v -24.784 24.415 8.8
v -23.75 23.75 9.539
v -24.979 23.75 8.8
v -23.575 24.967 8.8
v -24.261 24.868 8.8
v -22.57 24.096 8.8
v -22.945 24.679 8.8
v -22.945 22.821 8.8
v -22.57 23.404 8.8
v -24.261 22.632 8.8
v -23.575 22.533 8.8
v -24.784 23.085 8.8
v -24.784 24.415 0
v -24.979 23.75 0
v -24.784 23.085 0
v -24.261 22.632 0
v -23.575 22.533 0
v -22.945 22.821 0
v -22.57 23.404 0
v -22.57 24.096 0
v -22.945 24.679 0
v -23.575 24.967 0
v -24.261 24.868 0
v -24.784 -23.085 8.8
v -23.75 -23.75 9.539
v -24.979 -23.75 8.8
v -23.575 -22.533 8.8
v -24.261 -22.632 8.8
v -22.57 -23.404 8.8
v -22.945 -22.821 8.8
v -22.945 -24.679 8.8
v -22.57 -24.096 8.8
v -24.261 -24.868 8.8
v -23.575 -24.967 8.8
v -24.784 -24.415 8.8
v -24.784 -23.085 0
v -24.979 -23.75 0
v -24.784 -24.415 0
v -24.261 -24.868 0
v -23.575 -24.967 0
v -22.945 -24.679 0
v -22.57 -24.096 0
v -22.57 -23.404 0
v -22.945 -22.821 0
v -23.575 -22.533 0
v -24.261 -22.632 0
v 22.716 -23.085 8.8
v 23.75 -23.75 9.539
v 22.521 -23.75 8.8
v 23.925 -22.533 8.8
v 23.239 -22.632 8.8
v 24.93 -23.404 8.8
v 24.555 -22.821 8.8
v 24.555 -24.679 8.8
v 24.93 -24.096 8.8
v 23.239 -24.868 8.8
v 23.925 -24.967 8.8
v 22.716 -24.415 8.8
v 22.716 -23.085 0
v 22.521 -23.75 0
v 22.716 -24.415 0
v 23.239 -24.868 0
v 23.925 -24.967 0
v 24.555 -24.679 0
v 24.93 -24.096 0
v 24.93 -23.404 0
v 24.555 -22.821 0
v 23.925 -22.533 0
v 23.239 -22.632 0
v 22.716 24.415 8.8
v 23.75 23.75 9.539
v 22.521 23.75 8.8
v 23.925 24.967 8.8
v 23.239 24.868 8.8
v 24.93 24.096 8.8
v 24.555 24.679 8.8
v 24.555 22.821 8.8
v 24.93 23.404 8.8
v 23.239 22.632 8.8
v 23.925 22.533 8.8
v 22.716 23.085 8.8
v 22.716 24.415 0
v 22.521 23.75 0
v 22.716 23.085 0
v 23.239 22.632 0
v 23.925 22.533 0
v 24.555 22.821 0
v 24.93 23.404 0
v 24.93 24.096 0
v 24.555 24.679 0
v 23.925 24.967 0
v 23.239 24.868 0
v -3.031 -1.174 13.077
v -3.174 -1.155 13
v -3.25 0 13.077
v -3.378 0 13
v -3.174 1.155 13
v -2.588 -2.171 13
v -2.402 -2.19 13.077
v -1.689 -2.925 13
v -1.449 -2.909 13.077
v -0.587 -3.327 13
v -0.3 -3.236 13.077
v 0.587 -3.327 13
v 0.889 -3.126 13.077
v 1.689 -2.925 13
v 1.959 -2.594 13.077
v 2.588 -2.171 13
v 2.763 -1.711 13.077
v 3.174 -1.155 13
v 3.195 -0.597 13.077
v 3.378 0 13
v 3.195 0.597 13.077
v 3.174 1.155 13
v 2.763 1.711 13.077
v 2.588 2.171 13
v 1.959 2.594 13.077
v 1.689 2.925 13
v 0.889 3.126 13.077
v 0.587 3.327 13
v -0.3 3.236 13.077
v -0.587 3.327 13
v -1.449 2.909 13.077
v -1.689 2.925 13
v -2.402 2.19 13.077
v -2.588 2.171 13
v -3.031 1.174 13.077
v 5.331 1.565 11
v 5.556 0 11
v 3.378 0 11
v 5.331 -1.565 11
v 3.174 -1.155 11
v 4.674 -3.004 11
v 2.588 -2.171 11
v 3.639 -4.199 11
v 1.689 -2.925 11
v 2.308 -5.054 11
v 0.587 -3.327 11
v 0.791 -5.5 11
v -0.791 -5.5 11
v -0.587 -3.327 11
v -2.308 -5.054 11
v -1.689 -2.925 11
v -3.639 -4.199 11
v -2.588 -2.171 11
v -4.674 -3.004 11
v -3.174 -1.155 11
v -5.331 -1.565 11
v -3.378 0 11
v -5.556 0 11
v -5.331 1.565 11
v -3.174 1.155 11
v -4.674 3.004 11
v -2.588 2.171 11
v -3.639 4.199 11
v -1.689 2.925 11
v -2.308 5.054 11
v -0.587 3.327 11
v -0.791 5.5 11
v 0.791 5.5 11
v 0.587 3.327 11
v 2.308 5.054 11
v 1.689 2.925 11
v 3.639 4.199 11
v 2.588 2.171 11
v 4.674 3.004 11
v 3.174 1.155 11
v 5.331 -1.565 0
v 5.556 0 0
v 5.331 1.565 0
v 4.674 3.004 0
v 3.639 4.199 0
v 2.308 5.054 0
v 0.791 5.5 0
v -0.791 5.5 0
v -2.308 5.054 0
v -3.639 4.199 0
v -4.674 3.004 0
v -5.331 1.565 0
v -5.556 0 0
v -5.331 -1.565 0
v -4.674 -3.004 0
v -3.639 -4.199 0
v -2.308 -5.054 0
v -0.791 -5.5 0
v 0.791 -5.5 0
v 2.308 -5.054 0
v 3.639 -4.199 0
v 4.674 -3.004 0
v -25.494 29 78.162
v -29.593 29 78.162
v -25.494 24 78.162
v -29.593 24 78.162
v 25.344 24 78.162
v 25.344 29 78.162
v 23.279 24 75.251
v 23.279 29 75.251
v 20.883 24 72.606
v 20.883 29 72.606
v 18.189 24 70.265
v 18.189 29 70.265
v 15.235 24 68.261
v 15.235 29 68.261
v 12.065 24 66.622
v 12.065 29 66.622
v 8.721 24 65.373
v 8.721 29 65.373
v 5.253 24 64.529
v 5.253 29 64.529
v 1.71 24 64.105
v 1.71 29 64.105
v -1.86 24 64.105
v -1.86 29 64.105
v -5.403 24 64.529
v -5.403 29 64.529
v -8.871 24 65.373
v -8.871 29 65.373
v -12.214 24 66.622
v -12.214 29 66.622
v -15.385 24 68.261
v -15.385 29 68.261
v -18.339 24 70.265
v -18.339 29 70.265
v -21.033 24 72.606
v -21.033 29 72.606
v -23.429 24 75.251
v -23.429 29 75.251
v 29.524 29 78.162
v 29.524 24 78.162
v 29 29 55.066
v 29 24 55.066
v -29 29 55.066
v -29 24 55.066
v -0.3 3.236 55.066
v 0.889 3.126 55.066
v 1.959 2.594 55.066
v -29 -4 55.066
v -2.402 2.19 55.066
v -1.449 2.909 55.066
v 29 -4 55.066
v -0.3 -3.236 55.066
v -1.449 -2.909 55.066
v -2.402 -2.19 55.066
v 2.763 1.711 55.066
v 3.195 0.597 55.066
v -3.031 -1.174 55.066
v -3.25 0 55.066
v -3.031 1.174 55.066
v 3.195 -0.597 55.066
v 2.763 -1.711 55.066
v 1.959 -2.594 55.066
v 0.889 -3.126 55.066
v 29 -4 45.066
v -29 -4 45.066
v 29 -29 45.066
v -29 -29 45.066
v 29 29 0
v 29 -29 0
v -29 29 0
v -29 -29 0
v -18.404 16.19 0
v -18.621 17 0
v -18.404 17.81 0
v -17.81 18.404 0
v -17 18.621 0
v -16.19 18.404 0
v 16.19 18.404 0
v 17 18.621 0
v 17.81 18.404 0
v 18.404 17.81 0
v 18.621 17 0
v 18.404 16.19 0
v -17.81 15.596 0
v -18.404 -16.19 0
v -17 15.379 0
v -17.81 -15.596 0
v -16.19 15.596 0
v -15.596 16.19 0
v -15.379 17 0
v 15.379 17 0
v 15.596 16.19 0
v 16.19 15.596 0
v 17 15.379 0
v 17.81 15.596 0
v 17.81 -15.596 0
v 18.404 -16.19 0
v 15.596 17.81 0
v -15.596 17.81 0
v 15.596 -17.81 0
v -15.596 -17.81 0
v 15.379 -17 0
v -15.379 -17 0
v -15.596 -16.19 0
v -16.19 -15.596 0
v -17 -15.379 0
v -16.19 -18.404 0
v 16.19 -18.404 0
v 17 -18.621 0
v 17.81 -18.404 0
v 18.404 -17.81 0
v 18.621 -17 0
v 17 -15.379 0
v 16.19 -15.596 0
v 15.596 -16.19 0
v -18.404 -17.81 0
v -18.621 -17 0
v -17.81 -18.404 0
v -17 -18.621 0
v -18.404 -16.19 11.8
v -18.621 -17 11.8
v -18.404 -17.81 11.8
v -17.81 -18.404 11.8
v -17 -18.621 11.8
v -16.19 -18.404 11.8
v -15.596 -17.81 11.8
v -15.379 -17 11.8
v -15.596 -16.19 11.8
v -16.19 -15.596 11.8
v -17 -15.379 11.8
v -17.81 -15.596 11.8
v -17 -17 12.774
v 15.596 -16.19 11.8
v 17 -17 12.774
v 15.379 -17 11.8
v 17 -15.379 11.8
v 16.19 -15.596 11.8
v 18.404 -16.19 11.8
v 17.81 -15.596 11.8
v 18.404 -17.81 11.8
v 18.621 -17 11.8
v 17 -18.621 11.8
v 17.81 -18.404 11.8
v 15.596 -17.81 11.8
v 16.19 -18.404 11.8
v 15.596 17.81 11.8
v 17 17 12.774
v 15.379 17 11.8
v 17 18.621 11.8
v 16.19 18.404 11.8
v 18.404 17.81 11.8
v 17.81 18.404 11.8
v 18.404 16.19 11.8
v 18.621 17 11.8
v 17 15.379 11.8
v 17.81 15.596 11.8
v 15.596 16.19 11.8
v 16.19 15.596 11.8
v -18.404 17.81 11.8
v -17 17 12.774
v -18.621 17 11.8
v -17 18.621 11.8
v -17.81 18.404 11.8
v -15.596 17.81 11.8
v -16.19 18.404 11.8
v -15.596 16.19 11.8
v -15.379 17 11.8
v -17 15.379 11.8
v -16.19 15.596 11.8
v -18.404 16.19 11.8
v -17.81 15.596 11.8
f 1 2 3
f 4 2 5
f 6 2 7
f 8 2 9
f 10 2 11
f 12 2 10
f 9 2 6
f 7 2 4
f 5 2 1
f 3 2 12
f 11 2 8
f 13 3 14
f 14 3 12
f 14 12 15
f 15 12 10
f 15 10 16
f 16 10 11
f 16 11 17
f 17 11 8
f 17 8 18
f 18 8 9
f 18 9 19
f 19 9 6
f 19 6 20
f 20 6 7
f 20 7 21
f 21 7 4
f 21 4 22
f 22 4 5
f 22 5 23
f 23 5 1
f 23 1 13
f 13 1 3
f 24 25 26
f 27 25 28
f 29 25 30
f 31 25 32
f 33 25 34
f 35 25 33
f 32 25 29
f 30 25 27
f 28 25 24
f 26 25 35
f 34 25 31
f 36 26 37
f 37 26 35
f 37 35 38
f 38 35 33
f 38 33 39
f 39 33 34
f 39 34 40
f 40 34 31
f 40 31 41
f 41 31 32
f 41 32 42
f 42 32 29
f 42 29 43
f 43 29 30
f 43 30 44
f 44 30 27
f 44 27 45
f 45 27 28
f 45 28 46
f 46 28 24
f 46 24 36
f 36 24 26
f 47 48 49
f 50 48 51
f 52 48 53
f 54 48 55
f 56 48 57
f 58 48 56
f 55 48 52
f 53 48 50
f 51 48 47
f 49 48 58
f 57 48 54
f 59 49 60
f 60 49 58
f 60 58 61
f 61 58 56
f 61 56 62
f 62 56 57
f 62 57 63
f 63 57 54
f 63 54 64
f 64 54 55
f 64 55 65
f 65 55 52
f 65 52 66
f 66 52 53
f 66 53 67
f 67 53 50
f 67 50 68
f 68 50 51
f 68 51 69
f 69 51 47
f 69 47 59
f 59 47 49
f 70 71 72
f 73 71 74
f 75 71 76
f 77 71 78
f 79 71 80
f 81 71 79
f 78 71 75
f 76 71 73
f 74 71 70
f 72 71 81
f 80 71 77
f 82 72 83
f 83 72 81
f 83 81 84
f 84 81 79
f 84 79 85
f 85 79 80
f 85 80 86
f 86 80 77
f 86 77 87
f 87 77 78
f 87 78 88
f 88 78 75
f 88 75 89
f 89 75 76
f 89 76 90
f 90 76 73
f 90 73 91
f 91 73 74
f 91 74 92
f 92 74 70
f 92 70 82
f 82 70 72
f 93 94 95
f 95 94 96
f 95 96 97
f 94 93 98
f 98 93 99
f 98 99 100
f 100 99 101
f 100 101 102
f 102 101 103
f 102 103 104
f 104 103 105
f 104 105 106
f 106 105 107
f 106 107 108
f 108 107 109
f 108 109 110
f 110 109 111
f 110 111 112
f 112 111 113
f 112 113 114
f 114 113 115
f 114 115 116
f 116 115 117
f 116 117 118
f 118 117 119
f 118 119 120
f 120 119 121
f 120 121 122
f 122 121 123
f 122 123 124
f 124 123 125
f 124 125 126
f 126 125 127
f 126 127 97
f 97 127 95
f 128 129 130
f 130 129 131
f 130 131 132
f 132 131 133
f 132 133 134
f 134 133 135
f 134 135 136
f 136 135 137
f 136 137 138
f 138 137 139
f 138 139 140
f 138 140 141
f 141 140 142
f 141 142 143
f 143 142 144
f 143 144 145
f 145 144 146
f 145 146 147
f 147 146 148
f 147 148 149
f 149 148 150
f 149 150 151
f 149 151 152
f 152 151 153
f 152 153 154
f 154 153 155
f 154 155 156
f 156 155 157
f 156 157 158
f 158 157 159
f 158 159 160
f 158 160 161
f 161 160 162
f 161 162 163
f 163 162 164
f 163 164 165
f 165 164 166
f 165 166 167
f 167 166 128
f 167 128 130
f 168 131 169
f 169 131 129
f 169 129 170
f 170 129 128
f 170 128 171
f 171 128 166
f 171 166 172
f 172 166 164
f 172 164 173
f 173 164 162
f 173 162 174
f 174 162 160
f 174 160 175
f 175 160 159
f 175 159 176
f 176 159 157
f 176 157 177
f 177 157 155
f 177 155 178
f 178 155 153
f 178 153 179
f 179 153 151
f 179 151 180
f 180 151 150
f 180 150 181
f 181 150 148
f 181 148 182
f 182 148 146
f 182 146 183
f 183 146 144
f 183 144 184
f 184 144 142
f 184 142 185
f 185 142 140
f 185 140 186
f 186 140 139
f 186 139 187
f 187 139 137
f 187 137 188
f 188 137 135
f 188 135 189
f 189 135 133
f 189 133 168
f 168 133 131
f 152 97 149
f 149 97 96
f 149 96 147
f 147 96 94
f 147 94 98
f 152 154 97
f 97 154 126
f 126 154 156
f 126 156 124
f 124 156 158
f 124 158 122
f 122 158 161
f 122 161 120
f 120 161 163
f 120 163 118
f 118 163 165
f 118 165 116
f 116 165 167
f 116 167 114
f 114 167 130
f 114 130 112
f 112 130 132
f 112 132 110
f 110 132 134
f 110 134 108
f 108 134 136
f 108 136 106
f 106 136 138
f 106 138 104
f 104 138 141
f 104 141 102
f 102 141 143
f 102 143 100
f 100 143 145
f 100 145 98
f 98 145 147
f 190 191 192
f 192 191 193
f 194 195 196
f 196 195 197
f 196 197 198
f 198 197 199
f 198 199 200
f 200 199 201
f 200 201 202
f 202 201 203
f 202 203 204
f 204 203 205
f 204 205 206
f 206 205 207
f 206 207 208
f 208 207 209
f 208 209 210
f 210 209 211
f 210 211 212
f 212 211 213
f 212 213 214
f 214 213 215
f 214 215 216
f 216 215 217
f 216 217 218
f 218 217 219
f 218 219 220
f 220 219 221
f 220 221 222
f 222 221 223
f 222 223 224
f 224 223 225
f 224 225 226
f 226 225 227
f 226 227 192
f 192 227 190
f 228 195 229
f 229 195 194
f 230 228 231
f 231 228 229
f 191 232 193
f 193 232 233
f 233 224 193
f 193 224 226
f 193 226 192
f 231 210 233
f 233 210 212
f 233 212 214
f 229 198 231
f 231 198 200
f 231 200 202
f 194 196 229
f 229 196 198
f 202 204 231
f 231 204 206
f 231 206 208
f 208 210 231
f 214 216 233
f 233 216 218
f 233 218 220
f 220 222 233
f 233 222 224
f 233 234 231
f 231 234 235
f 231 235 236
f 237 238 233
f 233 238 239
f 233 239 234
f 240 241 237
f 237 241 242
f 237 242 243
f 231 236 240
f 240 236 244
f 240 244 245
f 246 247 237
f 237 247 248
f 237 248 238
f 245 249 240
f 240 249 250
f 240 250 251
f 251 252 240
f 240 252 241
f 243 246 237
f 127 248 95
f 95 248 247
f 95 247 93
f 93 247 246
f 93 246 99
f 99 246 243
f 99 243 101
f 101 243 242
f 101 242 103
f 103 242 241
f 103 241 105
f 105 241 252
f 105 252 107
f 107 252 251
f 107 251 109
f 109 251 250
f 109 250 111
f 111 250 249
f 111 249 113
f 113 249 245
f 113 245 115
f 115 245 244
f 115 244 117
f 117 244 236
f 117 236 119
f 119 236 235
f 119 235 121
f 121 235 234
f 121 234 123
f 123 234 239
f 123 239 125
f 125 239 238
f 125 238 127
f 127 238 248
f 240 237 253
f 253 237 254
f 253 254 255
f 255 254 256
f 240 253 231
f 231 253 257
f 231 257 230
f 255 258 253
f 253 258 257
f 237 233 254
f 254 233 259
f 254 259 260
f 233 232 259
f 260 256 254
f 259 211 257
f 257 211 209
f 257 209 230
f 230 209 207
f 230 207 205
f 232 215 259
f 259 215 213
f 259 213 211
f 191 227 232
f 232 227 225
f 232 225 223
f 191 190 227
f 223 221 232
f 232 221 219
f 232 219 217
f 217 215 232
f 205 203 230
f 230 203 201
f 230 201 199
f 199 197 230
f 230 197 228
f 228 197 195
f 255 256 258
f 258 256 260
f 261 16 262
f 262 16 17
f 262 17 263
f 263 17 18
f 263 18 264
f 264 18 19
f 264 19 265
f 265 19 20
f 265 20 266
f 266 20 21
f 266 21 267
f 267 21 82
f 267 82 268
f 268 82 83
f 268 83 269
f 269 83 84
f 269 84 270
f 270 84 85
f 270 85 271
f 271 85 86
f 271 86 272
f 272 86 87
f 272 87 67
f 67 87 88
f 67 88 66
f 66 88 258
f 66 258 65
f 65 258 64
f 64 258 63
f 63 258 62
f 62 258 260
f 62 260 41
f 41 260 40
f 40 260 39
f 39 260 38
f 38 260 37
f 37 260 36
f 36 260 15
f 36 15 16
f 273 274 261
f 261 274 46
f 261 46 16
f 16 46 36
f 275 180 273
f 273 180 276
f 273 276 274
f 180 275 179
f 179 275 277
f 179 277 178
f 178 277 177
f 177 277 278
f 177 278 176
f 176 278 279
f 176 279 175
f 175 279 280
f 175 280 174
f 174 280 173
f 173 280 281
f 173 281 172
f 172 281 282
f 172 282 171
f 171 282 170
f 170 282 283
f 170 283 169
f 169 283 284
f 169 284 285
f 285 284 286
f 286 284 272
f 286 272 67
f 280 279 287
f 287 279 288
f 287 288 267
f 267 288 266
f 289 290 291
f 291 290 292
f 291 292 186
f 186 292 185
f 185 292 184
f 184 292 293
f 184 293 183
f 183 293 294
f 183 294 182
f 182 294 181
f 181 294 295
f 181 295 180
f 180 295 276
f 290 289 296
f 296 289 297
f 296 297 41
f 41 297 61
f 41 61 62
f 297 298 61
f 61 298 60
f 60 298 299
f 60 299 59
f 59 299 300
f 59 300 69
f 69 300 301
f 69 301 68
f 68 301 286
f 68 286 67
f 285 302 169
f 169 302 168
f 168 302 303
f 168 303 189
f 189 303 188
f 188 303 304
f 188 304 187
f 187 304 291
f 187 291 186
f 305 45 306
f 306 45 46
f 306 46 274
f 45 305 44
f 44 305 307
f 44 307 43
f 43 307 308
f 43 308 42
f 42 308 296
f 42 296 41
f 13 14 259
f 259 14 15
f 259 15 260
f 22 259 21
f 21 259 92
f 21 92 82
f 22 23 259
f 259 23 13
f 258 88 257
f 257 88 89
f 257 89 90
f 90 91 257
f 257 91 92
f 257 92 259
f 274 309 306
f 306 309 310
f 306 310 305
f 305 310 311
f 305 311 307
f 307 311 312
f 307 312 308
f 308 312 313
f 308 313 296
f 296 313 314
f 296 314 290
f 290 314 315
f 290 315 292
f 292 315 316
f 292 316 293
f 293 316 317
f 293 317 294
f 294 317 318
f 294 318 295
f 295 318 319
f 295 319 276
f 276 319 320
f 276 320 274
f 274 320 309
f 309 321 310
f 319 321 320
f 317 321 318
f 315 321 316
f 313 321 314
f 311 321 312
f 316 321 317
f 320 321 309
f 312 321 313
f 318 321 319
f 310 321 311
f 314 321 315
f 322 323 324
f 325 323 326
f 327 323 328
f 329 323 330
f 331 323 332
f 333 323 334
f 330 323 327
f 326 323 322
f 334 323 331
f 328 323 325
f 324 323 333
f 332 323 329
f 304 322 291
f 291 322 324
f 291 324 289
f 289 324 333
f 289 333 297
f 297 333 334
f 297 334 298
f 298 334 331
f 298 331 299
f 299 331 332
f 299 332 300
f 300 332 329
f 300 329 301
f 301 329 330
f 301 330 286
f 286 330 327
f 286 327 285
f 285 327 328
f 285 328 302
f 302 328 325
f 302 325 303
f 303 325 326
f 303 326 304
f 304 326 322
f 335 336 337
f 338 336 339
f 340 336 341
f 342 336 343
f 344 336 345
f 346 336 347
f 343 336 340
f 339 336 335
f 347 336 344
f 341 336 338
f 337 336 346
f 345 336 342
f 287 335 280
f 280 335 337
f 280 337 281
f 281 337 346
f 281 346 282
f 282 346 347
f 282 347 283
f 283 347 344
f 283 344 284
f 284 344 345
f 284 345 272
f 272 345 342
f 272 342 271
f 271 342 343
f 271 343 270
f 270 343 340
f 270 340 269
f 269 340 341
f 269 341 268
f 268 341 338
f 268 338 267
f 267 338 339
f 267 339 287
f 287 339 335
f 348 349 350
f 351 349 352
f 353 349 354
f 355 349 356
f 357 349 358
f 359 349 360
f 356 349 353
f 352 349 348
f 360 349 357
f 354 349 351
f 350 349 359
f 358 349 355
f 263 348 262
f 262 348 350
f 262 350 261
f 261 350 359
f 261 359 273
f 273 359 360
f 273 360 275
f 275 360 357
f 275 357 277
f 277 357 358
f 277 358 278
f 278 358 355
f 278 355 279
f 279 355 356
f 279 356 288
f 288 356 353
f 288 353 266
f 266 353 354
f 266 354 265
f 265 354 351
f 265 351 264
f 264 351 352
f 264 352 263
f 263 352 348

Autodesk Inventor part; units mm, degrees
ref_plane "YZ Plane" through (0, 0, 0) normal (1, 0, 0) x (0, 1, 0)
ref_plane "XZ Plane" through (0, 0, 0) normal (0, 1, 0) x (-1, 0, 0)
ref_plane "XY Plane" through (0, 0, 0) normal (0, 0, 1) x (1, 0, 0)
sketch "Sketch1" plane through (0, 0, 0) normal (0, 0, 1) x (1, 0, 0)
  line L0 (29, -29) -> (-29, -29)
  line L1 (-29, -29) -> (-29, 29)
  line L2 (-29, 29) -> (29, 29)
  line L3 (29, 29) -> (29, -29)
  line L4 (29, -29) -> (-29, 29) construction
  line L5 (-29, -29) -> (29, 29) construction
  point P0 (0, 0)
  point P1 (0, 0)
  dimension "d0" = 58
  dimension "d1" = 58
extrude "Extrusion1" add sketch "Sketch1" along normal blind 55.066
sketch "Sketch2" plane through (0, 0, 55.066) normal (0, 0, 1) x (1, 0, 0)
  line L0 (-29, 29) -> (-29, -29) projected
  line L1 (29, -29) -> (29, 29) projected
  line L2 (-29, -4) -> (29, -4)
  line L3 (29, -4) -> (29, -29)
  line L4 (29, -29) -> (-29, -29)
  line L5 (-29, -29) -> (-29, -4)
  point P0 (0, 0)
extrude "Extrusion2" cut sketch "Sketch2" against normal blind 10
hole "Hole1" at (0, 0, 0) direction (0, 0, 1) diameter 6.5 end through all
sketch "Sketch3" plane through (-29, 29, 0) normal (0, 1, 0) x (1, 0, 0)
  line L0 (0, 0) -> (58, 0) projected
  line L1 (0, 0) -> (0, -55.066) projected
  line L2 (58, -55.066) -> (0, -55.066) projected
  line L3 (58, 0) -> (58, -55.066) projected
  arc A0 (3.5064, -78.162) -> (54.3437, -78.162) centre (28.925, -94.0017) ccw
  line L4 (58, -55.066) -> (58, -45.066) projected
  line L5 (58, -55.066) -> (58.8673, -93.3229)
  line L6 (0, -45.066) -> (0, -55.066) projected
  line L7 (0, -55.066) -> (-1.0173, -94.6805)
  line L8 (58.5236, -78.162) -> (-0.5931, -78.162)
  arc A1 (54.3437, -78.162) -> (3.5064, -78.162) centre (28.925, -94.0017) ccw
  point P0 (29, 0)
  dimension "d13" = 59.9
extrude "Extrusion3" add sketch "Sketch3" against normal blind 5 contours L2 L5 L8 A1 L7
hole "Hole2" at (0, 0, 0) direction (0, 0, 1) diameter 6.756 depth 13 tip angle 118 counterbore diameter 11.113 counterbore depth 11 clearance for "Socket Head Cap Screw" size "1/4" standard "Ansi Unified Screw Threads"
sketch "Sketch4" plane through (0, 0, 0) normal (0, 0, -1) x (-1, 0, 0)
  line L0 (-23.75, 23.75) -> (23.75, 23.75)
  line L1 (23.75, 23.75) -> (23.75, -23.75)
  line L2 (23.75, -23.75) -> (-23.75, -23.75)
  line L3 (-23.75, -23.75) -> (-23.75, 23.75)
  line L4 (-23.75, 23.75) -> (23.75, -23.75) construction
  line L5 (23.75, 23.75) -> (-23.75, -23.75) construction
  line L6 (-14.6492, 0) -> (14.3408, 0)
  point P0 (0, 0)
  point P1 (-17, -17)
  point P2 (17, -17)
  point P3 (-17, 17)
  point P4 (17, 17)
  dimension "d23" = 47.5
  dimension "d24" = 47.5
  dimension "d33" = 34
  dimension "d36" = 34
  dimension "d39" = 34
hole "Hole3" at (-23.75, -23.75, 0) at (23.75, -23.75, 0) at (-23.75, 23.75, 0) at (23.75, 23.75, 0) direction (0, 0, 1) diameter 2.459 depth 8.8 tip angle 118 thread size "M3x0.5" class "6H" standard "ANSI Metric M Profile"
hole "Hole4" at (17, -17, 0) at (17, 17, 0) at (-17, 17, 0) at (-17, -17, 0) direction (0, 0, 1) diameter 3.242 depth 11.8 tip angle 118 thread size "M4x0.7" class "6H" standard "ANSI Metric M Profile"
properties part number "Iris15-XT66P2M_H94mm(axis2base)"
